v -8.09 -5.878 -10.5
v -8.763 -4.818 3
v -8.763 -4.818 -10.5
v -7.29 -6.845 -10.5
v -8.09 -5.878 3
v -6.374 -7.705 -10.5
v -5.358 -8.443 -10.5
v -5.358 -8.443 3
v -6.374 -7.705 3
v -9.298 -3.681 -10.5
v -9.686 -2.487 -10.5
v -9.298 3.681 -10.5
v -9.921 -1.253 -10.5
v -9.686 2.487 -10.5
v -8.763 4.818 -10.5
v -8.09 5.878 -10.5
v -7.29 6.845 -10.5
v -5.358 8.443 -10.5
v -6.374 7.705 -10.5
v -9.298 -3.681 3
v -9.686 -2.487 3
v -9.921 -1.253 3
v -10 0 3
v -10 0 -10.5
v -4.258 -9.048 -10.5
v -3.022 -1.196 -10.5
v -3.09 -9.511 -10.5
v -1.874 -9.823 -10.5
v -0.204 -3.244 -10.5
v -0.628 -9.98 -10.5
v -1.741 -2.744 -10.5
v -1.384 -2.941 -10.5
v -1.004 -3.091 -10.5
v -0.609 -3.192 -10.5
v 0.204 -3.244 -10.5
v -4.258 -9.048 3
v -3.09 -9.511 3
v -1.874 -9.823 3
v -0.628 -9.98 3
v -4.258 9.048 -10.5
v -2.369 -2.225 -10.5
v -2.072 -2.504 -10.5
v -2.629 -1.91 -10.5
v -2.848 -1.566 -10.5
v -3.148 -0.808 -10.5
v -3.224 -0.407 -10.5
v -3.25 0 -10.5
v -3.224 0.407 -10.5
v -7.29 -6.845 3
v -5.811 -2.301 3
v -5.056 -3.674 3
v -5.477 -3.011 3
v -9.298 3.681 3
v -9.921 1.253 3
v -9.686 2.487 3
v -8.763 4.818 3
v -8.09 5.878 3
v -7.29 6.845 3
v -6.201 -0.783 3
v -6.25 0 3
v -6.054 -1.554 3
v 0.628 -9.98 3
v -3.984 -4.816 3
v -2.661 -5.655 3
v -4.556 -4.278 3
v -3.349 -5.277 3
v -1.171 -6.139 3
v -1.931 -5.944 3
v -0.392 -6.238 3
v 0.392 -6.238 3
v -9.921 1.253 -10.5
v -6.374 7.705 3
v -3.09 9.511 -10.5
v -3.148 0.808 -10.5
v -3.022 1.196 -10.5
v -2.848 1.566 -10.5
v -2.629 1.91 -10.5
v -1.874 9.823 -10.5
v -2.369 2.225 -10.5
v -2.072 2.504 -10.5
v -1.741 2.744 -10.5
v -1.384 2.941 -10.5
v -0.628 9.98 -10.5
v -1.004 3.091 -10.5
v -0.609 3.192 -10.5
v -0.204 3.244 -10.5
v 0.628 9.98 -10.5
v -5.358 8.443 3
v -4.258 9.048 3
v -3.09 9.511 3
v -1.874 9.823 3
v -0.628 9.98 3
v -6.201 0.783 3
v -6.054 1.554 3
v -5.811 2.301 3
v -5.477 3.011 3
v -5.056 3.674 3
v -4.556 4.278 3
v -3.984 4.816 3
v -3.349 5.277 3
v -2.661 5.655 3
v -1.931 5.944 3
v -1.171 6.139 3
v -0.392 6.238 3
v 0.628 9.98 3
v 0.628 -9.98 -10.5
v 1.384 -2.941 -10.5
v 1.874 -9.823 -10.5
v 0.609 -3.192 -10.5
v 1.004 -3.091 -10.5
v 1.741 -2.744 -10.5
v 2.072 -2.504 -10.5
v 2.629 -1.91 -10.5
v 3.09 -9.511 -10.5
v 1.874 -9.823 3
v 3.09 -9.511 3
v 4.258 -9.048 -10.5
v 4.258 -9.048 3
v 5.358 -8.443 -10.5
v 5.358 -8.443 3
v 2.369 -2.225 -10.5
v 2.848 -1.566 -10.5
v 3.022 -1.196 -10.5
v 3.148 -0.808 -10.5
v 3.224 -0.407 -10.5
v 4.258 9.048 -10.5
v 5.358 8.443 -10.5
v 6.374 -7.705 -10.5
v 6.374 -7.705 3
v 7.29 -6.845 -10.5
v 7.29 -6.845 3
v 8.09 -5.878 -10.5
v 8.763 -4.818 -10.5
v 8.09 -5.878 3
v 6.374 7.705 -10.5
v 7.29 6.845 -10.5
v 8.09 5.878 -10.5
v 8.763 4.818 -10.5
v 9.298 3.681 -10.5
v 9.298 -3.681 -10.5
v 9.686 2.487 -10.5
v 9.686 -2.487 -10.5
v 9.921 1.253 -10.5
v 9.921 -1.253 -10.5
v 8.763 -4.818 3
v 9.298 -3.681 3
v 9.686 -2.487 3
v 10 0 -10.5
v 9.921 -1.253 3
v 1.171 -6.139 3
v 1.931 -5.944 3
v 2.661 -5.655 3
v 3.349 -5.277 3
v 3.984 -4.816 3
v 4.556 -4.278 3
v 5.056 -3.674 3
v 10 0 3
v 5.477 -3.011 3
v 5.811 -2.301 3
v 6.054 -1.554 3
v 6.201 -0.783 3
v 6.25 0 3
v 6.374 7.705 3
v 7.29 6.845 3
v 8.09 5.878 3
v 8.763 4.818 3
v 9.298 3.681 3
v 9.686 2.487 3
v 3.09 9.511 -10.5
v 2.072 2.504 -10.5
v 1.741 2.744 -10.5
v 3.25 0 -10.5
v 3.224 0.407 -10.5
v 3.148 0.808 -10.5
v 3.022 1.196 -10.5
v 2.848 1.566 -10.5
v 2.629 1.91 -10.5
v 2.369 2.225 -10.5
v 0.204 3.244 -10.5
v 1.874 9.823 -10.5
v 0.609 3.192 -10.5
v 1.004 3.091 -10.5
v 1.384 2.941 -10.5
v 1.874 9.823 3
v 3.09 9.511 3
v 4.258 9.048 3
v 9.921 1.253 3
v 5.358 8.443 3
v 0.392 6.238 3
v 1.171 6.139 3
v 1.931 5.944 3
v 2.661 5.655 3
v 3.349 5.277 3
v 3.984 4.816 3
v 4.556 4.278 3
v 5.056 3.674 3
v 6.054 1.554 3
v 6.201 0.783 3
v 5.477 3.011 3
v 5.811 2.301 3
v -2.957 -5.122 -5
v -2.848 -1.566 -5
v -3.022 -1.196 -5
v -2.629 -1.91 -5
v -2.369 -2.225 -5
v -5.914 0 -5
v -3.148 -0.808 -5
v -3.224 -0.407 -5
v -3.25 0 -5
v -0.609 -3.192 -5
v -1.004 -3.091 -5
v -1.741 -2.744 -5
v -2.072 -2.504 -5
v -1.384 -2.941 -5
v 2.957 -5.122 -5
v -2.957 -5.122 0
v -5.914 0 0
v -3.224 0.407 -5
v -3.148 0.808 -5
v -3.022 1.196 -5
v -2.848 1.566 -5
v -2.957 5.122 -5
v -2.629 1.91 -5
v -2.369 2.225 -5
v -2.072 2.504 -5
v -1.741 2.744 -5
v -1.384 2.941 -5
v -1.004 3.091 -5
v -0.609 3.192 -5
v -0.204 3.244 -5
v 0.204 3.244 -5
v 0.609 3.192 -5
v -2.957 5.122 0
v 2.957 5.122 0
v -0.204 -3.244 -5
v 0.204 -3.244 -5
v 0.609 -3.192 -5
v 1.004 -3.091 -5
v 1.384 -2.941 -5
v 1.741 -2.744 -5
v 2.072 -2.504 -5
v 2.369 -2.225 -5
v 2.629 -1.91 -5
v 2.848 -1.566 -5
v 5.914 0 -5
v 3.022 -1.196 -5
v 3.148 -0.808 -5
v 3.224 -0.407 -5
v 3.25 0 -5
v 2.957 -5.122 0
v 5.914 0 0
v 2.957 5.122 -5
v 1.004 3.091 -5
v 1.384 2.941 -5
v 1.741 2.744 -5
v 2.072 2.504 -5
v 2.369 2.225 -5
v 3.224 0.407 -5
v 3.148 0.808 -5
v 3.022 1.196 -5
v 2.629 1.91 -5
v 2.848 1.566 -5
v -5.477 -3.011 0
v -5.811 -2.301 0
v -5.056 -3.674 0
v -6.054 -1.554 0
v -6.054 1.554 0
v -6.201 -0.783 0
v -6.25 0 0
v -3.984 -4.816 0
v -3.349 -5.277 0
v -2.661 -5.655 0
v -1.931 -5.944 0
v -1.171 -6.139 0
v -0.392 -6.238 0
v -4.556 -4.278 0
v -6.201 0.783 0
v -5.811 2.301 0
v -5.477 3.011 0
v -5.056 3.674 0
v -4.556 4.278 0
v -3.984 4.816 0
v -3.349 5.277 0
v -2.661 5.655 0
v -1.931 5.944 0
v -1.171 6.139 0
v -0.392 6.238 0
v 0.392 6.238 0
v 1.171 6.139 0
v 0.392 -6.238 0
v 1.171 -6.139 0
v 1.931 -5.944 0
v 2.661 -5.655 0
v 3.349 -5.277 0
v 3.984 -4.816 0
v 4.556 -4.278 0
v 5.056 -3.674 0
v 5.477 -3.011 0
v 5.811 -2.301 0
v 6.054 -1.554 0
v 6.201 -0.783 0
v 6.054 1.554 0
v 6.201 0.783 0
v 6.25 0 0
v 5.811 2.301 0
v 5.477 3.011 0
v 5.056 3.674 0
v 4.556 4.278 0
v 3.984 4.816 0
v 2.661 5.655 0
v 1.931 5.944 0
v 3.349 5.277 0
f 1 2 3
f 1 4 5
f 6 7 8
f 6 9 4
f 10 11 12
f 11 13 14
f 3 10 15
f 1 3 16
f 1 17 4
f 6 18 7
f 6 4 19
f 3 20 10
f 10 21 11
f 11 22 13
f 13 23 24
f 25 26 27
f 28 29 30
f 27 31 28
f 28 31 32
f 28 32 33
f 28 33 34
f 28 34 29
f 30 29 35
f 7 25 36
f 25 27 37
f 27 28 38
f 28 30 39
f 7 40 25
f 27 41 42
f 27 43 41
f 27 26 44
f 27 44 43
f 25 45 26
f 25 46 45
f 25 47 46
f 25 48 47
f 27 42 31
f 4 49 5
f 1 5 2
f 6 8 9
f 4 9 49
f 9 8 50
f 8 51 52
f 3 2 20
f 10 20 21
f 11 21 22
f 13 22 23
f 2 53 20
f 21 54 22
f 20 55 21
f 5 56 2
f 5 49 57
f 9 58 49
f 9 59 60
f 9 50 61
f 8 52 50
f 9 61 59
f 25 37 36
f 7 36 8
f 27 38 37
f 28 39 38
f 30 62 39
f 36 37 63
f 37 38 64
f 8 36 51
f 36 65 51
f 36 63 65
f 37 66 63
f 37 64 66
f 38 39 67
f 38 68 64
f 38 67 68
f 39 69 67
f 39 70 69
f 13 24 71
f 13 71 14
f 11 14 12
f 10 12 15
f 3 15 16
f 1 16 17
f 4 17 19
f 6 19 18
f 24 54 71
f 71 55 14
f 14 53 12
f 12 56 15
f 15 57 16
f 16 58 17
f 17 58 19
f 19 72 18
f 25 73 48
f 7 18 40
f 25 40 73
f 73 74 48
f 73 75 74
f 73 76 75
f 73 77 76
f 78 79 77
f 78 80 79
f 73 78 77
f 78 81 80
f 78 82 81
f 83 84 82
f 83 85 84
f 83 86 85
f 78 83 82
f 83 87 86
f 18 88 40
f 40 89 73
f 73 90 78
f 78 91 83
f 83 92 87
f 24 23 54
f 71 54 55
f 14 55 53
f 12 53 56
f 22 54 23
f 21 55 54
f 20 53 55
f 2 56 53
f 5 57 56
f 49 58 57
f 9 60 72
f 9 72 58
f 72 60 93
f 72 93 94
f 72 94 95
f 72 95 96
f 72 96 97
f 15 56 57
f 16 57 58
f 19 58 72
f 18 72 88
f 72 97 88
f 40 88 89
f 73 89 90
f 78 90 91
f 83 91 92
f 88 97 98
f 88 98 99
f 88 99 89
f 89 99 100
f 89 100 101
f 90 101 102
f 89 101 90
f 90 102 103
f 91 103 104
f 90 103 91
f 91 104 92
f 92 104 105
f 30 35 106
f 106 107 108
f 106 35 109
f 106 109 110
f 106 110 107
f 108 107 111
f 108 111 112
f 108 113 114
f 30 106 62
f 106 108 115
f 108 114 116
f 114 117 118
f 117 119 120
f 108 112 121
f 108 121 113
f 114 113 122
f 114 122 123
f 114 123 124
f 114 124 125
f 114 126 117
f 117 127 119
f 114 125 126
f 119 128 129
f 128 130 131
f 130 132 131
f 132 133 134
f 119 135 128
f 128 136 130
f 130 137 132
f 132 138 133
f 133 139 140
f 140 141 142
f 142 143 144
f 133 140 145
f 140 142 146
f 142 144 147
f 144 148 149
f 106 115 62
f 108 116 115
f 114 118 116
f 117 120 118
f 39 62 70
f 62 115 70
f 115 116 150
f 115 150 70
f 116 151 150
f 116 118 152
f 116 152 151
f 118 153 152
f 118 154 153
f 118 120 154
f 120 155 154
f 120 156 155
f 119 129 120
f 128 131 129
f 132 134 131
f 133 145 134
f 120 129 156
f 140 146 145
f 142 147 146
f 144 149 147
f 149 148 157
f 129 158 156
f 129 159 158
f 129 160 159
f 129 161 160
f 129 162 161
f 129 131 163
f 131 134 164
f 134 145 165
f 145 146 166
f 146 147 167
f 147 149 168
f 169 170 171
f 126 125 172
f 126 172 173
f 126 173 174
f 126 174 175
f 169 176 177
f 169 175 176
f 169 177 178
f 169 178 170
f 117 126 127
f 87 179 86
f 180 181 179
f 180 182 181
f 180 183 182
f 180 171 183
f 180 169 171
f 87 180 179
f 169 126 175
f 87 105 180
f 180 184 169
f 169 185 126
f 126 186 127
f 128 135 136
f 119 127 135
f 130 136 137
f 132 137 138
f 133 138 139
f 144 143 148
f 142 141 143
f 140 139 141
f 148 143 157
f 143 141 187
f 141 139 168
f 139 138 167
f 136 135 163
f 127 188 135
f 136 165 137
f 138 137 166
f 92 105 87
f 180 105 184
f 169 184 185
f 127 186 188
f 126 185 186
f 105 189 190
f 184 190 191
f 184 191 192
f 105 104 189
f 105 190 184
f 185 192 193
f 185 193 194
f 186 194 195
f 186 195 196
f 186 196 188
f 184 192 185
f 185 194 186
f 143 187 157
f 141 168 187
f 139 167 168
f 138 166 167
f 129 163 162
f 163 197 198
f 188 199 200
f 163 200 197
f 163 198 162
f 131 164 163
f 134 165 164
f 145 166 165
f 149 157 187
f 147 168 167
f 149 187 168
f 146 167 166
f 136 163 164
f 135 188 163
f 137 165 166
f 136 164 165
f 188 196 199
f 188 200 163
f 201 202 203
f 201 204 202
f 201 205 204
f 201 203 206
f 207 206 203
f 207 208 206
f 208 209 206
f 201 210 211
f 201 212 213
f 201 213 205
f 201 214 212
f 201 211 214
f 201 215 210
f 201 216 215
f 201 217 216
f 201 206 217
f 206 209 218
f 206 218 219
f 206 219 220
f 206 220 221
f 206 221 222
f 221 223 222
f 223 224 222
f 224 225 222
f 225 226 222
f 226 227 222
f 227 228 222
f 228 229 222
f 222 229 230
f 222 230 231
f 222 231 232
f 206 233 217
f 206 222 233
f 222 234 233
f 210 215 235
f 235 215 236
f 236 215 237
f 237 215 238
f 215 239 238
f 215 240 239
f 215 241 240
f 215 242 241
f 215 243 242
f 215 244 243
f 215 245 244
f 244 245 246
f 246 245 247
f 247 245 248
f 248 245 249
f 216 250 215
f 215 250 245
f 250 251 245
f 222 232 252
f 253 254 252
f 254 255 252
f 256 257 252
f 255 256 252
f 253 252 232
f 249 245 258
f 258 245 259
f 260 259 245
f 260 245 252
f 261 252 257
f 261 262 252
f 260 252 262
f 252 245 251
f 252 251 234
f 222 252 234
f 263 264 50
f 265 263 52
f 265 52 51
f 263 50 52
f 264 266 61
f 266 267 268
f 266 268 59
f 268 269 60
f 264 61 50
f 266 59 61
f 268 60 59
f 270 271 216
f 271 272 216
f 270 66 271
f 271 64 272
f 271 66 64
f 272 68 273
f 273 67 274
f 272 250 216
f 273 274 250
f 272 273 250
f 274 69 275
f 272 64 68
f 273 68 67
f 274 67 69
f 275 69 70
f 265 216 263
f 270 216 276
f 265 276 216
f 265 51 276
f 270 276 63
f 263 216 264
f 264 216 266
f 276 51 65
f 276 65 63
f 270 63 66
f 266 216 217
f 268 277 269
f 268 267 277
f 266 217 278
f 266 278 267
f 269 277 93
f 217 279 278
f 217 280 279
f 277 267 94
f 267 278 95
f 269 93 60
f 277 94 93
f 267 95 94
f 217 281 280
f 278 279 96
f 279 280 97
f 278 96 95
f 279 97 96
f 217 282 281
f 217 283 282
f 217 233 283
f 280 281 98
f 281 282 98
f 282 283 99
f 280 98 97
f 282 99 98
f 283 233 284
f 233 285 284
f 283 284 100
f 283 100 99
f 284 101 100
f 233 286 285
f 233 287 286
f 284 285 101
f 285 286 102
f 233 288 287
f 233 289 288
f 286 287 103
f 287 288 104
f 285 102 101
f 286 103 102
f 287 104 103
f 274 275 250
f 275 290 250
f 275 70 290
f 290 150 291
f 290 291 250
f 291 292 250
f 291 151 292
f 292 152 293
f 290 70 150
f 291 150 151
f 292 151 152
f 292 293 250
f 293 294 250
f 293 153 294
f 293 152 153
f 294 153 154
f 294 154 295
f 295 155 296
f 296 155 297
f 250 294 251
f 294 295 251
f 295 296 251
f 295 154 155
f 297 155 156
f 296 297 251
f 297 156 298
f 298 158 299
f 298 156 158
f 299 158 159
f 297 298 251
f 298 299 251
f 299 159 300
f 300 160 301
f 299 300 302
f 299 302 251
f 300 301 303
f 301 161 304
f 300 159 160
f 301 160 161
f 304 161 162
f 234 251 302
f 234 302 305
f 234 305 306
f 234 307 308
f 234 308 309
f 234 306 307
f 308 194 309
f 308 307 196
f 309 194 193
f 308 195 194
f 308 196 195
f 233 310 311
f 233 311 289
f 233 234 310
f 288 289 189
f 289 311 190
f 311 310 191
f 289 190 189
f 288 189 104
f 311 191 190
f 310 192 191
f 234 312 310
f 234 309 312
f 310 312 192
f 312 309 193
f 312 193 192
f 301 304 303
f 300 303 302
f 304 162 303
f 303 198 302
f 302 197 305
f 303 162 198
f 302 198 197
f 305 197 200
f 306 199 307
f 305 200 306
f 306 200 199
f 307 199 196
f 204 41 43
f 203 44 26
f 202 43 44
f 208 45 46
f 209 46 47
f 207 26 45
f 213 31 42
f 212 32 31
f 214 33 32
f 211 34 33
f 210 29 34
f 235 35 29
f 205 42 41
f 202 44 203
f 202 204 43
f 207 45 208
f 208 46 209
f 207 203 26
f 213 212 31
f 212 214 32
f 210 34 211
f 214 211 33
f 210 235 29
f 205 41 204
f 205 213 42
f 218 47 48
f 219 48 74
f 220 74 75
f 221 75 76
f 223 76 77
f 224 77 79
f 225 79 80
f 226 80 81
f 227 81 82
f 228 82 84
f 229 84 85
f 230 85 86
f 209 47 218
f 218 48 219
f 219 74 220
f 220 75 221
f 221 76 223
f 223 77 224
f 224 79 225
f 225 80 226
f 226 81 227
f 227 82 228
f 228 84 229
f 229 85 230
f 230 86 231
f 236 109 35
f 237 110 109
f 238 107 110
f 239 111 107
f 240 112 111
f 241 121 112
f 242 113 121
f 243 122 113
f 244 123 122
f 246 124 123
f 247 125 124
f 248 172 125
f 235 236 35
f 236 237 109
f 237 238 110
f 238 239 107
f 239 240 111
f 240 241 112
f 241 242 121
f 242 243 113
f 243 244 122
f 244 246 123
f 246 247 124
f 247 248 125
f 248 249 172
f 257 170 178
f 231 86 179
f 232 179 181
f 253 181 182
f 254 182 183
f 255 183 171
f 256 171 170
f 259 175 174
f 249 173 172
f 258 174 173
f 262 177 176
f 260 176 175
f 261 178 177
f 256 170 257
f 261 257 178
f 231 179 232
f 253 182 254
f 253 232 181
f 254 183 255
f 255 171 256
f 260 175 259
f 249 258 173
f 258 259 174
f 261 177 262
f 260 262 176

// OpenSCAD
$fn = 50;


difference() {
	union() {
		translate(v = [0, 0, -10.5000000000]) {
			cylinder(h = 13.5000000000, r = 10.0000000000);
		}
		#translate(v = [0, 0, -12.0000000000]) {
			cylinder(h = 12, r = 2.8750000000);
		}
	}
	union() {
		translate(v = [0, 0, 0]) {
			rotate(a = [0, 0, 0]) {
				difference() {
					union() {
						translate(v = [0, 0, -5]) {
							linear_extrude(height = 5) {
								polygon(points = [[5.9142500000, 0.0000000000], [2.9571250000, 5.1218907443], [-2.9571250000, 5.1218907443], [-5.9142500000, 0.0000000000], [-2.9571250000, -5.1218907443], [2.9571250000, -5.1218907443]]);
							}
						}
					}
					union();
				}
			}
		}
		#cylinder(h = 3, r = 6.2500000000);
		#translate(v = [0, 0, -100.0000000000]) {
			cylinder(h = 200, r = 3.2500000000);
		}
	}
}
